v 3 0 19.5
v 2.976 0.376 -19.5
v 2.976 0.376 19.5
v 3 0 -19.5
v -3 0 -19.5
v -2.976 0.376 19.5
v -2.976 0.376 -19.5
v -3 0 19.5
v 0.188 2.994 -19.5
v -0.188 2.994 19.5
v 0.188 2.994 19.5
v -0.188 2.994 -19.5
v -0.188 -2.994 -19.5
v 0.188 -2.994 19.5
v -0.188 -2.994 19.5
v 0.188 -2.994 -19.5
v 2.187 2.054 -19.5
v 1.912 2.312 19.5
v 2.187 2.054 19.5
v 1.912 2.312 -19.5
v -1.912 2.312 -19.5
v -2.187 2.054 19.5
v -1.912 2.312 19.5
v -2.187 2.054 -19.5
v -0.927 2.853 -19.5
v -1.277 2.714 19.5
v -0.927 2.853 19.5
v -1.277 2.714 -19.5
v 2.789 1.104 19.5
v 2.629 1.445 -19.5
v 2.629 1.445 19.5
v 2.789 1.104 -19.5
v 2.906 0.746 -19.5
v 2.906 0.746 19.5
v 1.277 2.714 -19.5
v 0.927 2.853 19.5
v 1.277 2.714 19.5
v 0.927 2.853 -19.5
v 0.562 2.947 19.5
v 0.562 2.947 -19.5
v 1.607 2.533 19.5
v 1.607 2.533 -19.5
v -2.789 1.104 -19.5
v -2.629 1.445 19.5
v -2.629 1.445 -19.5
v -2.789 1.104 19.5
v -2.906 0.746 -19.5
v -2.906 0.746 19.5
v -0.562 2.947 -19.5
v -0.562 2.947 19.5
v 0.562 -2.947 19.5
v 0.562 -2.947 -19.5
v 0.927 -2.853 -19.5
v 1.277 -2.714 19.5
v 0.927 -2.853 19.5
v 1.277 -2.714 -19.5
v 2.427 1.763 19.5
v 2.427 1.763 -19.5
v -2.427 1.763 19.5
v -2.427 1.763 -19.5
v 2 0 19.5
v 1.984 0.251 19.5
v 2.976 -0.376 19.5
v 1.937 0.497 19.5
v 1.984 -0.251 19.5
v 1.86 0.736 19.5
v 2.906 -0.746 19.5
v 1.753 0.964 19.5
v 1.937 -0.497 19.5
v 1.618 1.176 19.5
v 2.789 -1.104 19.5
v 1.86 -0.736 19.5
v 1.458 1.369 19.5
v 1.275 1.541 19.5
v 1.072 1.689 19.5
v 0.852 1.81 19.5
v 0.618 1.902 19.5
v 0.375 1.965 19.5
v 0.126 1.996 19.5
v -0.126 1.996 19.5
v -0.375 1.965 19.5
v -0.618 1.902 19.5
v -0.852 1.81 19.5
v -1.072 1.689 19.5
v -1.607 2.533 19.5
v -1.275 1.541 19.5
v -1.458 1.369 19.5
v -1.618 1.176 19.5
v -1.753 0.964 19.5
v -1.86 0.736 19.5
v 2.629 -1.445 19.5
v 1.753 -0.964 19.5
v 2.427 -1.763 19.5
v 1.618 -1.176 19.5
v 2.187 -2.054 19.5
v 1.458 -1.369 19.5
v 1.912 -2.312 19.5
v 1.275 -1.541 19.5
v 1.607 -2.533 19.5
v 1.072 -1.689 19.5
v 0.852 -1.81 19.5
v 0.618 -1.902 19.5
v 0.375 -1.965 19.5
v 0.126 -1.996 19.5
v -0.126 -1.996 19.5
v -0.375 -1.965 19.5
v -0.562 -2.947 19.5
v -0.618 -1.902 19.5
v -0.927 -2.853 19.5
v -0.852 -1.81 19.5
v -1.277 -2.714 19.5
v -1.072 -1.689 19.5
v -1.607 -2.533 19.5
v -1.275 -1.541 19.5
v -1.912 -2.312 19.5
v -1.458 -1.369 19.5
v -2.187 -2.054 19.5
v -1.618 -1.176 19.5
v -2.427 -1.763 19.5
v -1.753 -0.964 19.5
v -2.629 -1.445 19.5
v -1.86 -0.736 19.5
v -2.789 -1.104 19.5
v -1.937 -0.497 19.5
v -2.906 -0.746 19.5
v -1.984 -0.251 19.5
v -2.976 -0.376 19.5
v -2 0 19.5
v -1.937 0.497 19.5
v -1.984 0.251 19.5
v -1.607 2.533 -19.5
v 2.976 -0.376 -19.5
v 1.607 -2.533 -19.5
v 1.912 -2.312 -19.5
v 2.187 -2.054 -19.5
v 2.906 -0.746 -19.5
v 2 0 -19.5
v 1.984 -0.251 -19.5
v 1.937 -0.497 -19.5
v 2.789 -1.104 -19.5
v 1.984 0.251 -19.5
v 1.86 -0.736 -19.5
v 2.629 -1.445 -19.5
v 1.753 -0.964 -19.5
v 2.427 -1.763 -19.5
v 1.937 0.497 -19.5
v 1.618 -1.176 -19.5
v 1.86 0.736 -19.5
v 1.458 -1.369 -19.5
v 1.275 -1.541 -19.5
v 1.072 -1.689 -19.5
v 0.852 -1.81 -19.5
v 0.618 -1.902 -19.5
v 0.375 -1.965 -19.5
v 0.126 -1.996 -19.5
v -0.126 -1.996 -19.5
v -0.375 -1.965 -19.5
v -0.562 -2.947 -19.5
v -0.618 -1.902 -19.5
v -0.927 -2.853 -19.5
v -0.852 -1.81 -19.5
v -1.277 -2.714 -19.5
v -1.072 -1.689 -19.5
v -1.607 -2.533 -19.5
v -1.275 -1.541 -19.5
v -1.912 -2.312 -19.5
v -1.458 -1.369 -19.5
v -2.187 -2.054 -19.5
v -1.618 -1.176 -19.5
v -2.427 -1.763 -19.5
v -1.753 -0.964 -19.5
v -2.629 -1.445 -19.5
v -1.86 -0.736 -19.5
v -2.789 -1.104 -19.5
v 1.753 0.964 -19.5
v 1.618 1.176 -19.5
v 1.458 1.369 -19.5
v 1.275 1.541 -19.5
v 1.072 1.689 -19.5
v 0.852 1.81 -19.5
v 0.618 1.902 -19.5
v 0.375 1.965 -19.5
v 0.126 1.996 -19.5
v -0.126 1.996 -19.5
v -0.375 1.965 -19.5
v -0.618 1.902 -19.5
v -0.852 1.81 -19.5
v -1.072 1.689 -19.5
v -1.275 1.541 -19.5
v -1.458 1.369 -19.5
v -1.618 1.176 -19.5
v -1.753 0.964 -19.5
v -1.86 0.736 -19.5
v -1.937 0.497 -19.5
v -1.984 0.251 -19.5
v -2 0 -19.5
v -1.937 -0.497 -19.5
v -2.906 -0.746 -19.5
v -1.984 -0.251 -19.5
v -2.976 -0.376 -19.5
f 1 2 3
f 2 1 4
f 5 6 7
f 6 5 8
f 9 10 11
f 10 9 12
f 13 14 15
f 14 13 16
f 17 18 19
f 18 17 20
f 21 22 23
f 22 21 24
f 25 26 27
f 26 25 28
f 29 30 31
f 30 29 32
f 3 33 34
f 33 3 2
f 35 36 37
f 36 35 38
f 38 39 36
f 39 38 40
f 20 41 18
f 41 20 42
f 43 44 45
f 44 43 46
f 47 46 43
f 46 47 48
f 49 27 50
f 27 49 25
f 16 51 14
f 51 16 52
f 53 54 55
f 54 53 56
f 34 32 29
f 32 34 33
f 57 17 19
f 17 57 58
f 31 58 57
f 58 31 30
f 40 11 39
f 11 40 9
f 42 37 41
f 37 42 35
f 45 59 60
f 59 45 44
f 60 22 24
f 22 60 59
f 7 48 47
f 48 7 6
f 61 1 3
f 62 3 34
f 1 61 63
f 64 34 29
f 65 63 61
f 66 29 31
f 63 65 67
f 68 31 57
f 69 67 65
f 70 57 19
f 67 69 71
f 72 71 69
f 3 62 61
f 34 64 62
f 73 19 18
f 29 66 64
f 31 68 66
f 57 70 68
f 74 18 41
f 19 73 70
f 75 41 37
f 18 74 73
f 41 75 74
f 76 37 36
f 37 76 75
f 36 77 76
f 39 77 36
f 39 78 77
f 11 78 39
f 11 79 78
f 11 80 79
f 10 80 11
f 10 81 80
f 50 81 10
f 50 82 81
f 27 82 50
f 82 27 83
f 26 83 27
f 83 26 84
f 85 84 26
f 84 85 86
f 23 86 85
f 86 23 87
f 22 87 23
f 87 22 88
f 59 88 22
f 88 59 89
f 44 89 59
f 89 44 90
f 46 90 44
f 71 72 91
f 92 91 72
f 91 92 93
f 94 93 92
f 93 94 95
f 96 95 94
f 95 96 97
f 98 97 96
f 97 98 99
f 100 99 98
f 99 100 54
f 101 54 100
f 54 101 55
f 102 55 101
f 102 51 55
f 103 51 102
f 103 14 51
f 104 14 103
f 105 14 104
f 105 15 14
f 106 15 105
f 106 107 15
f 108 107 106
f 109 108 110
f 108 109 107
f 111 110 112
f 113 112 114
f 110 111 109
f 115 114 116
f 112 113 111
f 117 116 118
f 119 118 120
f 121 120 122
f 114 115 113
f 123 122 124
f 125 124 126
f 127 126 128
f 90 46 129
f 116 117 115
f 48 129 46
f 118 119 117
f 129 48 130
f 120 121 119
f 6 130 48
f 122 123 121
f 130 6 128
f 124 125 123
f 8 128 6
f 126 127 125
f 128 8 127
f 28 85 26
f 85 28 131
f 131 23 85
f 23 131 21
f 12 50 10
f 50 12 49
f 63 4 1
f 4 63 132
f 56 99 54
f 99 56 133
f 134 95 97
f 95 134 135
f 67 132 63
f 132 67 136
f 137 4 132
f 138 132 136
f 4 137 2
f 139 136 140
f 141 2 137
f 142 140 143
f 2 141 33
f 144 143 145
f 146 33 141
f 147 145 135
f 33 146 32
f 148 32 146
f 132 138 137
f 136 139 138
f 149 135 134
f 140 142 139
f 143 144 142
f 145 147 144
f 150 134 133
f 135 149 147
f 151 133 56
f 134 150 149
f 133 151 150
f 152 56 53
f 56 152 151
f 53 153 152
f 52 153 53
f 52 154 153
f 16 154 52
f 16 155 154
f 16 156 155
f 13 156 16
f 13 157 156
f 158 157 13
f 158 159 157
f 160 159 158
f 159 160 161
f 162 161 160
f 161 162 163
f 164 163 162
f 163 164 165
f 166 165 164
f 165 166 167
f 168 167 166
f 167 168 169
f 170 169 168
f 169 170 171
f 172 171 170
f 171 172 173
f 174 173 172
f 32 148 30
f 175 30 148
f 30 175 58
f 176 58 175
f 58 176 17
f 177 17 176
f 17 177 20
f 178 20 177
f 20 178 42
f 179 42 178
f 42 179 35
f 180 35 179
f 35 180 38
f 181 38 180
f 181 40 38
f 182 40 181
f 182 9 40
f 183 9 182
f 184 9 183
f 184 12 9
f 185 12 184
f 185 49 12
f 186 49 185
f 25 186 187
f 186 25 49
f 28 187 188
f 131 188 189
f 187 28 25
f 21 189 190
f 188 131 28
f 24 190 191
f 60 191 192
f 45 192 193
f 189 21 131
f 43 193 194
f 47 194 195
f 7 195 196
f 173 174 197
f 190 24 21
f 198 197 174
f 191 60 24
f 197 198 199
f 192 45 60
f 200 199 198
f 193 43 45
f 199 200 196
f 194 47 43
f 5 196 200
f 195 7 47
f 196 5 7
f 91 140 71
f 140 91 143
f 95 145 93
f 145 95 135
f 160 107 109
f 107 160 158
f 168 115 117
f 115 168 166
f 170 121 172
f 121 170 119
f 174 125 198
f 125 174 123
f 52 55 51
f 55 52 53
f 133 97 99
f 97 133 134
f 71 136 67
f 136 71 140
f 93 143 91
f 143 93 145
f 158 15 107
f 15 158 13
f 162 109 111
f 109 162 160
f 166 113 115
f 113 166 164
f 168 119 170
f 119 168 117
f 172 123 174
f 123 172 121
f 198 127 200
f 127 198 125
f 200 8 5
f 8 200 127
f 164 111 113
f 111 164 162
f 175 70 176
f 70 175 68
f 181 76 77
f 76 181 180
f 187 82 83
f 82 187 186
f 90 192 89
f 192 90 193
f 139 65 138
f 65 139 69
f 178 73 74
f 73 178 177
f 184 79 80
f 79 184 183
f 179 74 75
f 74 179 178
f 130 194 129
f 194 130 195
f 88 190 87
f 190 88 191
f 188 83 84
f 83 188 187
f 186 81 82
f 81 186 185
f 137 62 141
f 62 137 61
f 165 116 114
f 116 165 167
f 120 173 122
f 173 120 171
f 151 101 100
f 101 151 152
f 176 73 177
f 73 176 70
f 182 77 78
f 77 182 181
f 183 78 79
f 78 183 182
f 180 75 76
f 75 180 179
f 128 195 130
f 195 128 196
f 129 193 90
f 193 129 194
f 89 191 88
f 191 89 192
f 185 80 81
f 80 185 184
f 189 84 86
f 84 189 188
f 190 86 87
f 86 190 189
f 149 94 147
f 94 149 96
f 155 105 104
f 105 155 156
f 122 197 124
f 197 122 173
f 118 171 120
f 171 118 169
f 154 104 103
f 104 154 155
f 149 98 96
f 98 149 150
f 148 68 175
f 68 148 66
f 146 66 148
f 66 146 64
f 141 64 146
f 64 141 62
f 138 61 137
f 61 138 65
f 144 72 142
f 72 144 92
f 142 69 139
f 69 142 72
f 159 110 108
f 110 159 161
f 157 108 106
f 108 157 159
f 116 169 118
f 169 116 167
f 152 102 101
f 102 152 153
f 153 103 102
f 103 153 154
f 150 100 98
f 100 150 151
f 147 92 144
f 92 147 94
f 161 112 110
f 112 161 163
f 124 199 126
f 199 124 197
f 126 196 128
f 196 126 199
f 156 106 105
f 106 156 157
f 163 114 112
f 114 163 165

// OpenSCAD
$fn = 50;


difference() {
	union() {
		translate(v = [0, 0, -19.5000000000]) {
			cylinder(h = 39, r = 3.0000000000);
		}
	}
	union() {
		translate(v = [0, 0, -100.0000000000]) {
			cylinder(h = 200, r = 2);
		}
	}
}
